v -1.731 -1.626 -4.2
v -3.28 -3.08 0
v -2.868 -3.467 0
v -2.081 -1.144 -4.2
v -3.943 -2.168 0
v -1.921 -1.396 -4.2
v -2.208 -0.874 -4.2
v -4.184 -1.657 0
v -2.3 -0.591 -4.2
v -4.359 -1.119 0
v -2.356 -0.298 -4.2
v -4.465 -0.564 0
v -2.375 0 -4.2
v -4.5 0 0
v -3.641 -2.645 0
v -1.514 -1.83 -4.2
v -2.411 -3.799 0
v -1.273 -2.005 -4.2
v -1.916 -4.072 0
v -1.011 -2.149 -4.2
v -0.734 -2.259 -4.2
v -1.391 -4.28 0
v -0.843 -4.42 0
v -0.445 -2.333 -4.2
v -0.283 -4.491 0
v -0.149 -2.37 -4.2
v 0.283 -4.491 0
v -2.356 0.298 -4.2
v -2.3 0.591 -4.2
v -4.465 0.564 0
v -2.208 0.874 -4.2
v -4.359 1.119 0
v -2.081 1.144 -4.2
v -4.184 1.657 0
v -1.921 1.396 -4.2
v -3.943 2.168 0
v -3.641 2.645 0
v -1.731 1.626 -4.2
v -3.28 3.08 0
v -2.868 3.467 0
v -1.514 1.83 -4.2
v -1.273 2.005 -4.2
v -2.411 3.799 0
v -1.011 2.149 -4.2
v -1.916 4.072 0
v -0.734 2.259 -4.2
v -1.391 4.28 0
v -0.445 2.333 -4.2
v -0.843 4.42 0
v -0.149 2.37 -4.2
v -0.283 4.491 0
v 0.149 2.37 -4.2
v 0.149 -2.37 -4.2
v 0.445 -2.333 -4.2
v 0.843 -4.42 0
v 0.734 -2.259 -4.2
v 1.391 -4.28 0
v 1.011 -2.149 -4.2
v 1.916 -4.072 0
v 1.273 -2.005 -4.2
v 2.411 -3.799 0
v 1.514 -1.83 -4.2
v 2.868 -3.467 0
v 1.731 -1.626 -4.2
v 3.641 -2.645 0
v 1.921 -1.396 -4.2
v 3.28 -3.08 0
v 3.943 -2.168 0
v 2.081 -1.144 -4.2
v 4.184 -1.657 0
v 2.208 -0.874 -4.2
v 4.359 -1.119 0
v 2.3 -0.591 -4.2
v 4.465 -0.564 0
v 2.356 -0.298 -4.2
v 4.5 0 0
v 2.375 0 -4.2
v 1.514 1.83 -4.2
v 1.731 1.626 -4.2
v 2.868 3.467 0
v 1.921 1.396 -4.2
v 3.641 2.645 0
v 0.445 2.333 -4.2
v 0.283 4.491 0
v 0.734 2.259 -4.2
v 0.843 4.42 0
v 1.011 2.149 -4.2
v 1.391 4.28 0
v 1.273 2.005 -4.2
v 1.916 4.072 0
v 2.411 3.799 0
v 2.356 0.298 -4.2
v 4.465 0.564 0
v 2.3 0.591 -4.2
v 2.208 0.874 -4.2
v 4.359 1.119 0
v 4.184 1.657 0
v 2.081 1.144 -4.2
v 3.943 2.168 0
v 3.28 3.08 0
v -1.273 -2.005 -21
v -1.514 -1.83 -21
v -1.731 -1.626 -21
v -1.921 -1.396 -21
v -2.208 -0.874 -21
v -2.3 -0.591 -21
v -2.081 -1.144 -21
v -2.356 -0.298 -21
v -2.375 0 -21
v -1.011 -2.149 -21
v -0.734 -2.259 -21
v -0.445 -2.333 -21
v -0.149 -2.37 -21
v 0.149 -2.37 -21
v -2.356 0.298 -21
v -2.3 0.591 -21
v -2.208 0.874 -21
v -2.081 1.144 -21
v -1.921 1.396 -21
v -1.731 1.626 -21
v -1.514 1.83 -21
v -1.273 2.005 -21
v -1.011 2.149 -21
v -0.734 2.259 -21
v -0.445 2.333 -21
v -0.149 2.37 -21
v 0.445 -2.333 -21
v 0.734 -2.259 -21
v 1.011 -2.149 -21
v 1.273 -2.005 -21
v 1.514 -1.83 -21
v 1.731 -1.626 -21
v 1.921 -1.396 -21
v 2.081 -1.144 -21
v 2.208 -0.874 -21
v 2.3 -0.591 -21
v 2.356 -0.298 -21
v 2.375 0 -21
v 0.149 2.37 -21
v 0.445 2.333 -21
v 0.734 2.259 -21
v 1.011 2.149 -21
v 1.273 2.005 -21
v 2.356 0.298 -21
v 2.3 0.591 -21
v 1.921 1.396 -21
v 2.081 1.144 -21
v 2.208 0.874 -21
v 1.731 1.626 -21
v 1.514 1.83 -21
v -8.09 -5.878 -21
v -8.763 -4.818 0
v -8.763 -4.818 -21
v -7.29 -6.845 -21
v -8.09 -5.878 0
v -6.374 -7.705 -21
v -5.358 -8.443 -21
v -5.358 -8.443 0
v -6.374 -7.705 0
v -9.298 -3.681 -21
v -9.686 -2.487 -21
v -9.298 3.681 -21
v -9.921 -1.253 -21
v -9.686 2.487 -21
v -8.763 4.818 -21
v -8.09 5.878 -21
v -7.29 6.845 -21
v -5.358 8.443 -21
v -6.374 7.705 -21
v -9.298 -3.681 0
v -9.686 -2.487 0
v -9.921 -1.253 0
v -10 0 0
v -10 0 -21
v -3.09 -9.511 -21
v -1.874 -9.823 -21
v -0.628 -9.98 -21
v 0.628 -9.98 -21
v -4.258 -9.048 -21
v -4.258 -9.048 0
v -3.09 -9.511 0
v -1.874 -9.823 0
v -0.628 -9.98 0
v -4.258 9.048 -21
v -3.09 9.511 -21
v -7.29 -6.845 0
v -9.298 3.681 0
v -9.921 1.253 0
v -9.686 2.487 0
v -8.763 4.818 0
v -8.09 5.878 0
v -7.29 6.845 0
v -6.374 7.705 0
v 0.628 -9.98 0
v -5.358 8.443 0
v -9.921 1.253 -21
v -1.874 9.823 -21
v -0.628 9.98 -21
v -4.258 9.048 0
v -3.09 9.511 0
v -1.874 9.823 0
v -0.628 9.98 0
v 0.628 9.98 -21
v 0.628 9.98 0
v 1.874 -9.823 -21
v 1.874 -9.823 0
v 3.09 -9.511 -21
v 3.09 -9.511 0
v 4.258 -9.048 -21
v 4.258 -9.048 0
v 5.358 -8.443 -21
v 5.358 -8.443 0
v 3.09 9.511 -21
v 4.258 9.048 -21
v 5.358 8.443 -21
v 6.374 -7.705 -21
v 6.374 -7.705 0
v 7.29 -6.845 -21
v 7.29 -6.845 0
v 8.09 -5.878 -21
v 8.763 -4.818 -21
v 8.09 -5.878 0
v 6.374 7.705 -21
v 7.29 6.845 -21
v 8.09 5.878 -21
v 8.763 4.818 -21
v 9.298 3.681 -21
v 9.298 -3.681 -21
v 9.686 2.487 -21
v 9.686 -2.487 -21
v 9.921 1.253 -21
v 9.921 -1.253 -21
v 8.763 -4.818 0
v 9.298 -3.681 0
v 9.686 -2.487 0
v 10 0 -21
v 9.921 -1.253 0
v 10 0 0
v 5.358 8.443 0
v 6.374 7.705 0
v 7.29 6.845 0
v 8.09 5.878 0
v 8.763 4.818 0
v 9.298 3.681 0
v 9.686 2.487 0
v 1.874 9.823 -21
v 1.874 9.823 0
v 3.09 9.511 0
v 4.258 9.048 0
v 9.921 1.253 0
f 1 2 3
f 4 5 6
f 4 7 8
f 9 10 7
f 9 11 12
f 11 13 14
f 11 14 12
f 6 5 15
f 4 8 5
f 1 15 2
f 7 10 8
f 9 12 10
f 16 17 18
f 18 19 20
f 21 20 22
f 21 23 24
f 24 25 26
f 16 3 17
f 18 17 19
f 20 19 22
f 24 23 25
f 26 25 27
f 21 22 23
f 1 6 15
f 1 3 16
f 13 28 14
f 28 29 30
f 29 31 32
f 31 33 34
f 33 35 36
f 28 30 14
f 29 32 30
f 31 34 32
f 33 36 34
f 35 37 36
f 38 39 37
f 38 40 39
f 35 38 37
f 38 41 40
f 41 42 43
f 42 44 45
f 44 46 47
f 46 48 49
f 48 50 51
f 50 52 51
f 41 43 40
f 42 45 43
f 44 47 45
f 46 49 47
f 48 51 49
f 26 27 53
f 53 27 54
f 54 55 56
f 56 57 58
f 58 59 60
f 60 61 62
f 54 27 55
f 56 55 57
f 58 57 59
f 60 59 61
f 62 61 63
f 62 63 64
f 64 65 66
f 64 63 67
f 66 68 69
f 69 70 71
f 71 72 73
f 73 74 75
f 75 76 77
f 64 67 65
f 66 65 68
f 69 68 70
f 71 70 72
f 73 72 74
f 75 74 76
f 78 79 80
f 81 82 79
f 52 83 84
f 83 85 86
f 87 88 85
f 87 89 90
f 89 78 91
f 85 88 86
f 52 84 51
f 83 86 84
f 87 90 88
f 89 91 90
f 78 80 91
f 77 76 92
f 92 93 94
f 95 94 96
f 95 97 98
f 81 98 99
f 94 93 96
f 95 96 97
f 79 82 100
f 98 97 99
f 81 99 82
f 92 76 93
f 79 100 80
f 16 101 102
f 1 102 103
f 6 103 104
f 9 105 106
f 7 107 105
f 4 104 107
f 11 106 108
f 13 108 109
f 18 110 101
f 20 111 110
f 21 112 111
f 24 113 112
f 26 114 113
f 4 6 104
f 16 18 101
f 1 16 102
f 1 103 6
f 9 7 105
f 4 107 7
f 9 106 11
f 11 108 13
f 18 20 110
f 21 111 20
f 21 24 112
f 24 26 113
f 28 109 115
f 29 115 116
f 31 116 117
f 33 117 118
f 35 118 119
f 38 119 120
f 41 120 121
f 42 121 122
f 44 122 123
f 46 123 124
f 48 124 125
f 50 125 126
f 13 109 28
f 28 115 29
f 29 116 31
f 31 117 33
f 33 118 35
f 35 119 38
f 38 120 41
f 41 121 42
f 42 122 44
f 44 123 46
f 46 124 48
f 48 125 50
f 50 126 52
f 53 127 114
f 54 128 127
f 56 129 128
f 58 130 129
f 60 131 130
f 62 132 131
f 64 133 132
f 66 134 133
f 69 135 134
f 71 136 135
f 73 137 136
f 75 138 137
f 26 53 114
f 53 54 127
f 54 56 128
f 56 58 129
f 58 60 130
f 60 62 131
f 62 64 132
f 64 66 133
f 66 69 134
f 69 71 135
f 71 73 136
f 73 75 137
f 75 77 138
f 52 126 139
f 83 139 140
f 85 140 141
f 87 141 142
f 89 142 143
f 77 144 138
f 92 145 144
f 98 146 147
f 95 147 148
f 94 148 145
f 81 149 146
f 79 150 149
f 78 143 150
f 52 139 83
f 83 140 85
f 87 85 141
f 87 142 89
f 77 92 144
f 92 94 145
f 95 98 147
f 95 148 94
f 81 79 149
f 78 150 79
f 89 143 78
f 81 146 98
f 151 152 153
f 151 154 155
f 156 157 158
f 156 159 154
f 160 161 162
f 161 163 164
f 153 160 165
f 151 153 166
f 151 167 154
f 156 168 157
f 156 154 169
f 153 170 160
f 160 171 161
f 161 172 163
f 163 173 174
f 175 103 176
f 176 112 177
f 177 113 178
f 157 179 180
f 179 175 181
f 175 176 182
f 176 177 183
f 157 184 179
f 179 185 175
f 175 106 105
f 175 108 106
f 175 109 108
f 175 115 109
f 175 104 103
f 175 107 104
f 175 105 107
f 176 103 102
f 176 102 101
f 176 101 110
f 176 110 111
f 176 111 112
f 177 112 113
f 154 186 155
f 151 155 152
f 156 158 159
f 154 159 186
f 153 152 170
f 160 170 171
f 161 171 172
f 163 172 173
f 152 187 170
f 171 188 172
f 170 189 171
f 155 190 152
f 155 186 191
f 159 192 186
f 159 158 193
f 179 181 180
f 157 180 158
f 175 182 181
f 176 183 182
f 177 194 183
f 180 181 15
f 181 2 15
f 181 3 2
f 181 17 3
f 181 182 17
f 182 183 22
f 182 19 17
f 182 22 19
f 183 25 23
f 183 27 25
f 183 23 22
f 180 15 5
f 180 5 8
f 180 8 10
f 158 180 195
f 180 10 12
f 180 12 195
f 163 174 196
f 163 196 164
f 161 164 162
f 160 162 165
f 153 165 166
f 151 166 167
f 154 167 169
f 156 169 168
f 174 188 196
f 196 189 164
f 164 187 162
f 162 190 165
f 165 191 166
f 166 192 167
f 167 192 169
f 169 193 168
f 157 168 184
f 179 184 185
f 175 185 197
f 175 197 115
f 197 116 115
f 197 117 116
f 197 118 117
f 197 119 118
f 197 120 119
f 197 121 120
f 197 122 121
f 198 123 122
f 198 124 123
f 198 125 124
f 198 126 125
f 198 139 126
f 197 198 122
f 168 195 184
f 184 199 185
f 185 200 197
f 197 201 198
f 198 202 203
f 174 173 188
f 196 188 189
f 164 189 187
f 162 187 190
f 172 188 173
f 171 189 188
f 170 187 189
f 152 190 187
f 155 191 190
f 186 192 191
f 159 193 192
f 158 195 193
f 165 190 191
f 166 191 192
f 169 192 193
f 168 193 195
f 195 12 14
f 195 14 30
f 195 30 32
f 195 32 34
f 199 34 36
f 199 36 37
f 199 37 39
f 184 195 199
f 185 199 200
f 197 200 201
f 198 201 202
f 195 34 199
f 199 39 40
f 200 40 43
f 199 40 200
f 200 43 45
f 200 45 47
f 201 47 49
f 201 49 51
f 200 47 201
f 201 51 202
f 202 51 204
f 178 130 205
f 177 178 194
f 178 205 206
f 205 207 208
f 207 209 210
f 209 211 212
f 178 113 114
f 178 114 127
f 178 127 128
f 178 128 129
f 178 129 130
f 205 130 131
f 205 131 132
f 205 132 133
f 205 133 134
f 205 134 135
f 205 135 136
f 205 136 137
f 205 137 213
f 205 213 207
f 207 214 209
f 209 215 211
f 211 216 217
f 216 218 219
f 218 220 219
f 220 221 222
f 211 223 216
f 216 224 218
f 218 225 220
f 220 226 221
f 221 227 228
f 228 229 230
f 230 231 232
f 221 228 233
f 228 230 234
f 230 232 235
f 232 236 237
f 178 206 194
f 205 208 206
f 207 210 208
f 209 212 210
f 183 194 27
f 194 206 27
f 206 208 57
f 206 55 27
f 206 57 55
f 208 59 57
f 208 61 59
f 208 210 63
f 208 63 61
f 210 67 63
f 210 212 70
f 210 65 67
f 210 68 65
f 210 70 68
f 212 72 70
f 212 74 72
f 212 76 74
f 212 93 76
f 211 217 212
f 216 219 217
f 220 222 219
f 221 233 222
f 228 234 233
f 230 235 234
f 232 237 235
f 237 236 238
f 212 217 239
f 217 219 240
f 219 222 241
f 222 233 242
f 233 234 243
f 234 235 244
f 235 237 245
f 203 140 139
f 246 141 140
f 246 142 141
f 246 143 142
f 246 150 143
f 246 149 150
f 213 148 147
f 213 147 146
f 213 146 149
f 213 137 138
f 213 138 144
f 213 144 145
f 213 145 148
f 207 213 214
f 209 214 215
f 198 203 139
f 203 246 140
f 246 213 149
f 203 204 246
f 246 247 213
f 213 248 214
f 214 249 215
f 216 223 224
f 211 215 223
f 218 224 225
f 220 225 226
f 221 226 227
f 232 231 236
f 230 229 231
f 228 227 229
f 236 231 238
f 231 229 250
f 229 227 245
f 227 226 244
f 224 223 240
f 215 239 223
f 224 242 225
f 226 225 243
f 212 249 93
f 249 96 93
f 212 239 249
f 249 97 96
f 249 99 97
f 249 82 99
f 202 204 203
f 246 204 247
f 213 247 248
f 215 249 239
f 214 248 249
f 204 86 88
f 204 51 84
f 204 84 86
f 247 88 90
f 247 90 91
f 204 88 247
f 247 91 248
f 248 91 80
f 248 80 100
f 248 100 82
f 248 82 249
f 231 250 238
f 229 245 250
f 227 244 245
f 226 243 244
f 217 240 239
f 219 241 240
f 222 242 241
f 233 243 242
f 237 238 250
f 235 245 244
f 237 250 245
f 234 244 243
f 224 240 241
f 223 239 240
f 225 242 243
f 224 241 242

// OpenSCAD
$fn = 50;

difference() {
	union() {
		translate(v = [0, 0, -21.0]) {
			cylinder(h = 21, r = 10.0);
		}
	}
	union() {
		translate(v = [0, 0, 0]) {
			rotate(a = [0, 0, 0]) {
				difference() {
					union() {
						translate(v = [0, 0, -24.0]) {
							cylinder(h = 24, r = 2.25);
						}
						translate(v = [0, 0, -4.2]) {
							cylinder(h = 4.2, r1 = 2.375, r2 = 4.5);
						}
						translate(v = [0, 0, -24.0]) {
							cylinder(h = 24, r = 2.375);
						}
						translate(v = [0, 0, -24.0]) {
							cylinder(h = 24, r = 2.25);
						}
					}
					union();
				}
			}
		}
	}
}
